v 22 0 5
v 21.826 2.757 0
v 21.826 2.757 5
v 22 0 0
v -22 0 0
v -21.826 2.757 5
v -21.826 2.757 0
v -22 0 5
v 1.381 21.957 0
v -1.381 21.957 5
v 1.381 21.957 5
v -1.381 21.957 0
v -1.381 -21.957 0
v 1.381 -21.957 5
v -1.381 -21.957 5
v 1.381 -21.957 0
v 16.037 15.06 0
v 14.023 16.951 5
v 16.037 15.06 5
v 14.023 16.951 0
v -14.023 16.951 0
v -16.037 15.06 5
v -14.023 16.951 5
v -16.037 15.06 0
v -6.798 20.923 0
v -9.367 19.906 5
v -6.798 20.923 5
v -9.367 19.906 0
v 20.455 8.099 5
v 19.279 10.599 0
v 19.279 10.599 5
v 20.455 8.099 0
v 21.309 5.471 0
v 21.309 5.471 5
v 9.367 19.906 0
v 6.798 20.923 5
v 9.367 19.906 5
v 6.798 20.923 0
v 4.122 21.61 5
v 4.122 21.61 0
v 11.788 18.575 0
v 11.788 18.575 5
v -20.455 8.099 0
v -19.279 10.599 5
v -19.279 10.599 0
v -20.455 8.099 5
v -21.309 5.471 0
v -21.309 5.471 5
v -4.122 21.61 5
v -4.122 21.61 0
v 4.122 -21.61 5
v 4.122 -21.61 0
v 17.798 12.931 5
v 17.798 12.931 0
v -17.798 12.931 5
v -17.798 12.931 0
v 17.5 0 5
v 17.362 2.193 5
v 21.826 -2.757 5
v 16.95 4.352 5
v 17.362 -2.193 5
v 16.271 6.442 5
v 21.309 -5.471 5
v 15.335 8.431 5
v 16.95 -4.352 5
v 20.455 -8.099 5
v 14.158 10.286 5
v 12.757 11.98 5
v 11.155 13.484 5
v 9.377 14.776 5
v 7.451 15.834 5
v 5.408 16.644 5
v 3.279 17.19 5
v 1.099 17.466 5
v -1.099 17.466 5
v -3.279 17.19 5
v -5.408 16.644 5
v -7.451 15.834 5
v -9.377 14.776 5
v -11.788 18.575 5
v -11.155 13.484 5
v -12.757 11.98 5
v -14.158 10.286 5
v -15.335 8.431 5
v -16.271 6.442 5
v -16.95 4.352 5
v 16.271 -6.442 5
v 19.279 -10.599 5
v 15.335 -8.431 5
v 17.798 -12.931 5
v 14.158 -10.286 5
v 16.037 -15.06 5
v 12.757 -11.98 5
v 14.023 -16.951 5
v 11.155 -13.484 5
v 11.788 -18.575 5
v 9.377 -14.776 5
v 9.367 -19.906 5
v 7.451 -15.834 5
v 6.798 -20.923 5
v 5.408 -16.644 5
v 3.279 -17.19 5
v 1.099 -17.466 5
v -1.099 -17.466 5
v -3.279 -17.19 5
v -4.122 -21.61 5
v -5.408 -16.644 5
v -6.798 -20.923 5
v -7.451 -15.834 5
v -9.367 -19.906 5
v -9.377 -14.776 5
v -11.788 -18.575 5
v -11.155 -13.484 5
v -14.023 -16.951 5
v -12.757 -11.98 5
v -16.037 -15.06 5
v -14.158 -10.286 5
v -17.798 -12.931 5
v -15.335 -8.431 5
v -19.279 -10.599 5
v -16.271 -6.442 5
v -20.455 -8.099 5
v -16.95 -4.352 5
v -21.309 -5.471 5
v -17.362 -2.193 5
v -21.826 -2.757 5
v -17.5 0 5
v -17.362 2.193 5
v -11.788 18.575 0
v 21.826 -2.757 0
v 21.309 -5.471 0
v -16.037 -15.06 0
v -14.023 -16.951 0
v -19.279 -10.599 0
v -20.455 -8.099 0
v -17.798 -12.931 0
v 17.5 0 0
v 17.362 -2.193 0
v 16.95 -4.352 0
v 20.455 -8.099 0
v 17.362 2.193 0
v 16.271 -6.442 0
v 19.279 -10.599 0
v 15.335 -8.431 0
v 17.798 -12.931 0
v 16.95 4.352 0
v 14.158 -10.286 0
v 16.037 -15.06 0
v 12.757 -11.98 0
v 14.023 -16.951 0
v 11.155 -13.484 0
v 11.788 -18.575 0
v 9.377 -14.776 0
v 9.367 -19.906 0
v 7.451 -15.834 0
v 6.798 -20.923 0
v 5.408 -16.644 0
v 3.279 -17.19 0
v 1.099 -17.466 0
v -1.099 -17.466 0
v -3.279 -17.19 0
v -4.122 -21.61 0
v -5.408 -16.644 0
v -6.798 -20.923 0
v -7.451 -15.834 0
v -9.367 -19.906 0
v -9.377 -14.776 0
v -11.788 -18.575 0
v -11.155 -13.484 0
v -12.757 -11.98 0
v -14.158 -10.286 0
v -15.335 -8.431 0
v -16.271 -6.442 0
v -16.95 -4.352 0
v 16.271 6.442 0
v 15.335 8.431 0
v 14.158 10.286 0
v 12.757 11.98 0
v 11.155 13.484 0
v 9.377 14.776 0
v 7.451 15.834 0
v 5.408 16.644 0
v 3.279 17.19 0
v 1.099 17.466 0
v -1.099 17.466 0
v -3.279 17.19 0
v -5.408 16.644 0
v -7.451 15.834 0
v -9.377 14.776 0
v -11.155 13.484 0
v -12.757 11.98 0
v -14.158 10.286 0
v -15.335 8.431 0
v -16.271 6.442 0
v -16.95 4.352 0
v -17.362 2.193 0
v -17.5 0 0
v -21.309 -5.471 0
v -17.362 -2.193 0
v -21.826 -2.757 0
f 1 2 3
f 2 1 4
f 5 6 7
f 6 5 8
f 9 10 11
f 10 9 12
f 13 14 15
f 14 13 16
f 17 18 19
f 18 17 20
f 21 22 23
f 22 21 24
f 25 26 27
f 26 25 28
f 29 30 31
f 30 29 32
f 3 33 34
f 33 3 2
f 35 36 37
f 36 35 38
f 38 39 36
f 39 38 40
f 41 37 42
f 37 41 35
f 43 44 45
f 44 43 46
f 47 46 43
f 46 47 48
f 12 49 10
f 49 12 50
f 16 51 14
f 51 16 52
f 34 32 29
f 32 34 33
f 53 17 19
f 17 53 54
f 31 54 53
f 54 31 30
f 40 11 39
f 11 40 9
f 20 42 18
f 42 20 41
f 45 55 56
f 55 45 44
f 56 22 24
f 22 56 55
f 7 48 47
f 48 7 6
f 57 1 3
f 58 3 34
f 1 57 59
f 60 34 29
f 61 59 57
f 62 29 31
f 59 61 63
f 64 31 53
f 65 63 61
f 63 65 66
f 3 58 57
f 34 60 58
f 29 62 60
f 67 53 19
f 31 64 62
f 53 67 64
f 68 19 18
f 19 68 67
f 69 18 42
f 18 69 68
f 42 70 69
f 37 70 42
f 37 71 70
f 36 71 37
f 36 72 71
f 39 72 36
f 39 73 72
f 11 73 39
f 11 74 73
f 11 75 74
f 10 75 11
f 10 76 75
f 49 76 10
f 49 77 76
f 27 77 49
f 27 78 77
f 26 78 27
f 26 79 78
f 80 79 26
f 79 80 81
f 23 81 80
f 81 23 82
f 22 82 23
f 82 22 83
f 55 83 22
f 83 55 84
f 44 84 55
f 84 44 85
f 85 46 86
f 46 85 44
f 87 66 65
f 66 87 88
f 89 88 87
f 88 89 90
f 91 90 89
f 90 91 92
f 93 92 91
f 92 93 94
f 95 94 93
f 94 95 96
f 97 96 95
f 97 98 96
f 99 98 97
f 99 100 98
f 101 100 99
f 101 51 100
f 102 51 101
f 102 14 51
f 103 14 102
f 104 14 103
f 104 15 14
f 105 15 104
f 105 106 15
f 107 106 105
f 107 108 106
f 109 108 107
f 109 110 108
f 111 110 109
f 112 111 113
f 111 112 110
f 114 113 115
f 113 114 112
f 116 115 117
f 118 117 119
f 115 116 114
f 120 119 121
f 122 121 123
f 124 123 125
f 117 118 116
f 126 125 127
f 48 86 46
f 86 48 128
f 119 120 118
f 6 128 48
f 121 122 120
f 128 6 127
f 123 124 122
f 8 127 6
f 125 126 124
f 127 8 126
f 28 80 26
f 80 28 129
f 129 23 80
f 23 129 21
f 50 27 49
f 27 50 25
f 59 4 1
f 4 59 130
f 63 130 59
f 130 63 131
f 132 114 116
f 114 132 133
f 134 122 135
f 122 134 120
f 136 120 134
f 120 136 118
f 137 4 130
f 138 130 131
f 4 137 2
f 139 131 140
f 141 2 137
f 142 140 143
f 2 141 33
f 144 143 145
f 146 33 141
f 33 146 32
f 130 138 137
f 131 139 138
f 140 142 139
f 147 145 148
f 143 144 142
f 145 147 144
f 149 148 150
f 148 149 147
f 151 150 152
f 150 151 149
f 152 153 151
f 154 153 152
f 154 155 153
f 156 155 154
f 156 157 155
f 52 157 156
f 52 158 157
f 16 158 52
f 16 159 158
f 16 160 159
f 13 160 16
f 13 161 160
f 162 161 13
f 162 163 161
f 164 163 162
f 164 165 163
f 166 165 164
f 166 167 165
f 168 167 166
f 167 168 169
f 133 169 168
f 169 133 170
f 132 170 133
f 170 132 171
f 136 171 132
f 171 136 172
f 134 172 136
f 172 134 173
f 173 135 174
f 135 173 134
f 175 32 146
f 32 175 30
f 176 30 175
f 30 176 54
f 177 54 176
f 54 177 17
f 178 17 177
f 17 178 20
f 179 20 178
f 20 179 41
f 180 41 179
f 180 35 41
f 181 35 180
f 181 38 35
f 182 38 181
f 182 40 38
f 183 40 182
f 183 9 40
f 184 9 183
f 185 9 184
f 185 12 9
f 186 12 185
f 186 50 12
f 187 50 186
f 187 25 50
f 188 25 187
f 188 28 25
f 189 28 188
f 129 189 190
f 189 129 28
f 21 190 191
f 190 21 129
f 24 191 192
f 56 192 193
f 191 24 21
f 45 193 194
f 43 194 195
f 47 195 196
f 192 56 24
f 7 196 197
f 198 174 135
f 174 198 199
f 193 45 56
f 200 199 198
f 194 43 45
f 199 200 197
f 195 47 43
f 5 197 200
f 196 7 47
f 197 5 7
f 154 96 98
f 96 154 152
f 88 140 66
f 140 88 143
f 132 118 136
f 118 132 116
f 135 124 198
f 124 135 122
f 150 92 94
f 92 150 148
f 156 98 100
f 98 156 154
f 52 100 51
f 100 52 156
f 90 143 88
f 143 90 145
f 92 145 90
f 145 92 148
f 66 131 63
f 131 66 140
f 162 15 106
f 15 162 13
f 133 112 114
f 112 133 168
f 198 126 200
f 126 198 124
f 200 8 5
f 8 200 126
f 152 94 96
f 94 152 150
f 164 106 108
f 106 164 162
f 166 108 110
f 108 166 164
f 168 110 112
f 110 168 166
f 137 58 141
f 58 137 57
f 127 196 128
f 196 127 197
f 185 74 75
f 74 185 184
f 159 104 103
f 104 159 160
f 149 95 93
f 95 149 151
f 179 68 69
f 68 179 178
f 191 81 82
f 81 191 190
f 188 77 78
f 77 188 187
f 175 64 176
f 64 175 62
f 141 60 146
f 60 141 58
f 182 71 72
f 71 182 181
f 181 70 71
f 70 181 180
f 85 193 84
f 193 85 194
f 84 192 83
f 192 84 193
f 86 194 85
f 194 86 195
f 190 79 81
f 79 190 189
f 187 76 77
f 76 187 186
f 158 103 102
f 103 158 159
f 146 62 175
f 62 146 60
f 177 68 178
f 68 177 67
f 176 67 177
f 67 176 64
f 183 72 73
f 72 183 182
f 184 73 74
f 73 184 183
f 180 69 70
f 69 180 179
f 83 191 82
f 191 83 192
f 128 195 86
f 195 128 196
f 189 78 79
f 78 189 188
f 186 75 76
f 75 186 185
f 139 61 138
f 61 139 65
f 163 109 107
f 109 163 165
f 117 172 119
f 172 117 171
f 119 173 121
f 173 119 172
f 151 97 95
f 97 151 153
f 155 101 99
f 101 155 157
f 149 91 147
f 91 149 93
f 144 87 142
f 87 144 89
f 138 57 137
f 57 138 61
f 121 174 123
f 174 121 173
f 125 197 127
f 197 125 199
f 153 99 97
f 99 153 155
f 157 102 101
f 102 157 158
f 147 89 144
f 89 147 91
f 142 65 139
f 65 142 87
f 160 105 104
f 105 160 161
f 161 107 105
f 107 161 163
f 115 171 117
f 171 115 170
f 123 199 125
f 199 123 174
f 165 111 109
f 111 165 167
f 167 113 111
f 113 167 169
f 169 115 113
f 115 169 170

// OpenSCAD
$fn = 50;


difference() {
	union() {
		cylinder(h = 5, r = 22.0000000000);
	}
	union() {
		cylinder(h = 5, r = 17.5000000000);
	}
}
